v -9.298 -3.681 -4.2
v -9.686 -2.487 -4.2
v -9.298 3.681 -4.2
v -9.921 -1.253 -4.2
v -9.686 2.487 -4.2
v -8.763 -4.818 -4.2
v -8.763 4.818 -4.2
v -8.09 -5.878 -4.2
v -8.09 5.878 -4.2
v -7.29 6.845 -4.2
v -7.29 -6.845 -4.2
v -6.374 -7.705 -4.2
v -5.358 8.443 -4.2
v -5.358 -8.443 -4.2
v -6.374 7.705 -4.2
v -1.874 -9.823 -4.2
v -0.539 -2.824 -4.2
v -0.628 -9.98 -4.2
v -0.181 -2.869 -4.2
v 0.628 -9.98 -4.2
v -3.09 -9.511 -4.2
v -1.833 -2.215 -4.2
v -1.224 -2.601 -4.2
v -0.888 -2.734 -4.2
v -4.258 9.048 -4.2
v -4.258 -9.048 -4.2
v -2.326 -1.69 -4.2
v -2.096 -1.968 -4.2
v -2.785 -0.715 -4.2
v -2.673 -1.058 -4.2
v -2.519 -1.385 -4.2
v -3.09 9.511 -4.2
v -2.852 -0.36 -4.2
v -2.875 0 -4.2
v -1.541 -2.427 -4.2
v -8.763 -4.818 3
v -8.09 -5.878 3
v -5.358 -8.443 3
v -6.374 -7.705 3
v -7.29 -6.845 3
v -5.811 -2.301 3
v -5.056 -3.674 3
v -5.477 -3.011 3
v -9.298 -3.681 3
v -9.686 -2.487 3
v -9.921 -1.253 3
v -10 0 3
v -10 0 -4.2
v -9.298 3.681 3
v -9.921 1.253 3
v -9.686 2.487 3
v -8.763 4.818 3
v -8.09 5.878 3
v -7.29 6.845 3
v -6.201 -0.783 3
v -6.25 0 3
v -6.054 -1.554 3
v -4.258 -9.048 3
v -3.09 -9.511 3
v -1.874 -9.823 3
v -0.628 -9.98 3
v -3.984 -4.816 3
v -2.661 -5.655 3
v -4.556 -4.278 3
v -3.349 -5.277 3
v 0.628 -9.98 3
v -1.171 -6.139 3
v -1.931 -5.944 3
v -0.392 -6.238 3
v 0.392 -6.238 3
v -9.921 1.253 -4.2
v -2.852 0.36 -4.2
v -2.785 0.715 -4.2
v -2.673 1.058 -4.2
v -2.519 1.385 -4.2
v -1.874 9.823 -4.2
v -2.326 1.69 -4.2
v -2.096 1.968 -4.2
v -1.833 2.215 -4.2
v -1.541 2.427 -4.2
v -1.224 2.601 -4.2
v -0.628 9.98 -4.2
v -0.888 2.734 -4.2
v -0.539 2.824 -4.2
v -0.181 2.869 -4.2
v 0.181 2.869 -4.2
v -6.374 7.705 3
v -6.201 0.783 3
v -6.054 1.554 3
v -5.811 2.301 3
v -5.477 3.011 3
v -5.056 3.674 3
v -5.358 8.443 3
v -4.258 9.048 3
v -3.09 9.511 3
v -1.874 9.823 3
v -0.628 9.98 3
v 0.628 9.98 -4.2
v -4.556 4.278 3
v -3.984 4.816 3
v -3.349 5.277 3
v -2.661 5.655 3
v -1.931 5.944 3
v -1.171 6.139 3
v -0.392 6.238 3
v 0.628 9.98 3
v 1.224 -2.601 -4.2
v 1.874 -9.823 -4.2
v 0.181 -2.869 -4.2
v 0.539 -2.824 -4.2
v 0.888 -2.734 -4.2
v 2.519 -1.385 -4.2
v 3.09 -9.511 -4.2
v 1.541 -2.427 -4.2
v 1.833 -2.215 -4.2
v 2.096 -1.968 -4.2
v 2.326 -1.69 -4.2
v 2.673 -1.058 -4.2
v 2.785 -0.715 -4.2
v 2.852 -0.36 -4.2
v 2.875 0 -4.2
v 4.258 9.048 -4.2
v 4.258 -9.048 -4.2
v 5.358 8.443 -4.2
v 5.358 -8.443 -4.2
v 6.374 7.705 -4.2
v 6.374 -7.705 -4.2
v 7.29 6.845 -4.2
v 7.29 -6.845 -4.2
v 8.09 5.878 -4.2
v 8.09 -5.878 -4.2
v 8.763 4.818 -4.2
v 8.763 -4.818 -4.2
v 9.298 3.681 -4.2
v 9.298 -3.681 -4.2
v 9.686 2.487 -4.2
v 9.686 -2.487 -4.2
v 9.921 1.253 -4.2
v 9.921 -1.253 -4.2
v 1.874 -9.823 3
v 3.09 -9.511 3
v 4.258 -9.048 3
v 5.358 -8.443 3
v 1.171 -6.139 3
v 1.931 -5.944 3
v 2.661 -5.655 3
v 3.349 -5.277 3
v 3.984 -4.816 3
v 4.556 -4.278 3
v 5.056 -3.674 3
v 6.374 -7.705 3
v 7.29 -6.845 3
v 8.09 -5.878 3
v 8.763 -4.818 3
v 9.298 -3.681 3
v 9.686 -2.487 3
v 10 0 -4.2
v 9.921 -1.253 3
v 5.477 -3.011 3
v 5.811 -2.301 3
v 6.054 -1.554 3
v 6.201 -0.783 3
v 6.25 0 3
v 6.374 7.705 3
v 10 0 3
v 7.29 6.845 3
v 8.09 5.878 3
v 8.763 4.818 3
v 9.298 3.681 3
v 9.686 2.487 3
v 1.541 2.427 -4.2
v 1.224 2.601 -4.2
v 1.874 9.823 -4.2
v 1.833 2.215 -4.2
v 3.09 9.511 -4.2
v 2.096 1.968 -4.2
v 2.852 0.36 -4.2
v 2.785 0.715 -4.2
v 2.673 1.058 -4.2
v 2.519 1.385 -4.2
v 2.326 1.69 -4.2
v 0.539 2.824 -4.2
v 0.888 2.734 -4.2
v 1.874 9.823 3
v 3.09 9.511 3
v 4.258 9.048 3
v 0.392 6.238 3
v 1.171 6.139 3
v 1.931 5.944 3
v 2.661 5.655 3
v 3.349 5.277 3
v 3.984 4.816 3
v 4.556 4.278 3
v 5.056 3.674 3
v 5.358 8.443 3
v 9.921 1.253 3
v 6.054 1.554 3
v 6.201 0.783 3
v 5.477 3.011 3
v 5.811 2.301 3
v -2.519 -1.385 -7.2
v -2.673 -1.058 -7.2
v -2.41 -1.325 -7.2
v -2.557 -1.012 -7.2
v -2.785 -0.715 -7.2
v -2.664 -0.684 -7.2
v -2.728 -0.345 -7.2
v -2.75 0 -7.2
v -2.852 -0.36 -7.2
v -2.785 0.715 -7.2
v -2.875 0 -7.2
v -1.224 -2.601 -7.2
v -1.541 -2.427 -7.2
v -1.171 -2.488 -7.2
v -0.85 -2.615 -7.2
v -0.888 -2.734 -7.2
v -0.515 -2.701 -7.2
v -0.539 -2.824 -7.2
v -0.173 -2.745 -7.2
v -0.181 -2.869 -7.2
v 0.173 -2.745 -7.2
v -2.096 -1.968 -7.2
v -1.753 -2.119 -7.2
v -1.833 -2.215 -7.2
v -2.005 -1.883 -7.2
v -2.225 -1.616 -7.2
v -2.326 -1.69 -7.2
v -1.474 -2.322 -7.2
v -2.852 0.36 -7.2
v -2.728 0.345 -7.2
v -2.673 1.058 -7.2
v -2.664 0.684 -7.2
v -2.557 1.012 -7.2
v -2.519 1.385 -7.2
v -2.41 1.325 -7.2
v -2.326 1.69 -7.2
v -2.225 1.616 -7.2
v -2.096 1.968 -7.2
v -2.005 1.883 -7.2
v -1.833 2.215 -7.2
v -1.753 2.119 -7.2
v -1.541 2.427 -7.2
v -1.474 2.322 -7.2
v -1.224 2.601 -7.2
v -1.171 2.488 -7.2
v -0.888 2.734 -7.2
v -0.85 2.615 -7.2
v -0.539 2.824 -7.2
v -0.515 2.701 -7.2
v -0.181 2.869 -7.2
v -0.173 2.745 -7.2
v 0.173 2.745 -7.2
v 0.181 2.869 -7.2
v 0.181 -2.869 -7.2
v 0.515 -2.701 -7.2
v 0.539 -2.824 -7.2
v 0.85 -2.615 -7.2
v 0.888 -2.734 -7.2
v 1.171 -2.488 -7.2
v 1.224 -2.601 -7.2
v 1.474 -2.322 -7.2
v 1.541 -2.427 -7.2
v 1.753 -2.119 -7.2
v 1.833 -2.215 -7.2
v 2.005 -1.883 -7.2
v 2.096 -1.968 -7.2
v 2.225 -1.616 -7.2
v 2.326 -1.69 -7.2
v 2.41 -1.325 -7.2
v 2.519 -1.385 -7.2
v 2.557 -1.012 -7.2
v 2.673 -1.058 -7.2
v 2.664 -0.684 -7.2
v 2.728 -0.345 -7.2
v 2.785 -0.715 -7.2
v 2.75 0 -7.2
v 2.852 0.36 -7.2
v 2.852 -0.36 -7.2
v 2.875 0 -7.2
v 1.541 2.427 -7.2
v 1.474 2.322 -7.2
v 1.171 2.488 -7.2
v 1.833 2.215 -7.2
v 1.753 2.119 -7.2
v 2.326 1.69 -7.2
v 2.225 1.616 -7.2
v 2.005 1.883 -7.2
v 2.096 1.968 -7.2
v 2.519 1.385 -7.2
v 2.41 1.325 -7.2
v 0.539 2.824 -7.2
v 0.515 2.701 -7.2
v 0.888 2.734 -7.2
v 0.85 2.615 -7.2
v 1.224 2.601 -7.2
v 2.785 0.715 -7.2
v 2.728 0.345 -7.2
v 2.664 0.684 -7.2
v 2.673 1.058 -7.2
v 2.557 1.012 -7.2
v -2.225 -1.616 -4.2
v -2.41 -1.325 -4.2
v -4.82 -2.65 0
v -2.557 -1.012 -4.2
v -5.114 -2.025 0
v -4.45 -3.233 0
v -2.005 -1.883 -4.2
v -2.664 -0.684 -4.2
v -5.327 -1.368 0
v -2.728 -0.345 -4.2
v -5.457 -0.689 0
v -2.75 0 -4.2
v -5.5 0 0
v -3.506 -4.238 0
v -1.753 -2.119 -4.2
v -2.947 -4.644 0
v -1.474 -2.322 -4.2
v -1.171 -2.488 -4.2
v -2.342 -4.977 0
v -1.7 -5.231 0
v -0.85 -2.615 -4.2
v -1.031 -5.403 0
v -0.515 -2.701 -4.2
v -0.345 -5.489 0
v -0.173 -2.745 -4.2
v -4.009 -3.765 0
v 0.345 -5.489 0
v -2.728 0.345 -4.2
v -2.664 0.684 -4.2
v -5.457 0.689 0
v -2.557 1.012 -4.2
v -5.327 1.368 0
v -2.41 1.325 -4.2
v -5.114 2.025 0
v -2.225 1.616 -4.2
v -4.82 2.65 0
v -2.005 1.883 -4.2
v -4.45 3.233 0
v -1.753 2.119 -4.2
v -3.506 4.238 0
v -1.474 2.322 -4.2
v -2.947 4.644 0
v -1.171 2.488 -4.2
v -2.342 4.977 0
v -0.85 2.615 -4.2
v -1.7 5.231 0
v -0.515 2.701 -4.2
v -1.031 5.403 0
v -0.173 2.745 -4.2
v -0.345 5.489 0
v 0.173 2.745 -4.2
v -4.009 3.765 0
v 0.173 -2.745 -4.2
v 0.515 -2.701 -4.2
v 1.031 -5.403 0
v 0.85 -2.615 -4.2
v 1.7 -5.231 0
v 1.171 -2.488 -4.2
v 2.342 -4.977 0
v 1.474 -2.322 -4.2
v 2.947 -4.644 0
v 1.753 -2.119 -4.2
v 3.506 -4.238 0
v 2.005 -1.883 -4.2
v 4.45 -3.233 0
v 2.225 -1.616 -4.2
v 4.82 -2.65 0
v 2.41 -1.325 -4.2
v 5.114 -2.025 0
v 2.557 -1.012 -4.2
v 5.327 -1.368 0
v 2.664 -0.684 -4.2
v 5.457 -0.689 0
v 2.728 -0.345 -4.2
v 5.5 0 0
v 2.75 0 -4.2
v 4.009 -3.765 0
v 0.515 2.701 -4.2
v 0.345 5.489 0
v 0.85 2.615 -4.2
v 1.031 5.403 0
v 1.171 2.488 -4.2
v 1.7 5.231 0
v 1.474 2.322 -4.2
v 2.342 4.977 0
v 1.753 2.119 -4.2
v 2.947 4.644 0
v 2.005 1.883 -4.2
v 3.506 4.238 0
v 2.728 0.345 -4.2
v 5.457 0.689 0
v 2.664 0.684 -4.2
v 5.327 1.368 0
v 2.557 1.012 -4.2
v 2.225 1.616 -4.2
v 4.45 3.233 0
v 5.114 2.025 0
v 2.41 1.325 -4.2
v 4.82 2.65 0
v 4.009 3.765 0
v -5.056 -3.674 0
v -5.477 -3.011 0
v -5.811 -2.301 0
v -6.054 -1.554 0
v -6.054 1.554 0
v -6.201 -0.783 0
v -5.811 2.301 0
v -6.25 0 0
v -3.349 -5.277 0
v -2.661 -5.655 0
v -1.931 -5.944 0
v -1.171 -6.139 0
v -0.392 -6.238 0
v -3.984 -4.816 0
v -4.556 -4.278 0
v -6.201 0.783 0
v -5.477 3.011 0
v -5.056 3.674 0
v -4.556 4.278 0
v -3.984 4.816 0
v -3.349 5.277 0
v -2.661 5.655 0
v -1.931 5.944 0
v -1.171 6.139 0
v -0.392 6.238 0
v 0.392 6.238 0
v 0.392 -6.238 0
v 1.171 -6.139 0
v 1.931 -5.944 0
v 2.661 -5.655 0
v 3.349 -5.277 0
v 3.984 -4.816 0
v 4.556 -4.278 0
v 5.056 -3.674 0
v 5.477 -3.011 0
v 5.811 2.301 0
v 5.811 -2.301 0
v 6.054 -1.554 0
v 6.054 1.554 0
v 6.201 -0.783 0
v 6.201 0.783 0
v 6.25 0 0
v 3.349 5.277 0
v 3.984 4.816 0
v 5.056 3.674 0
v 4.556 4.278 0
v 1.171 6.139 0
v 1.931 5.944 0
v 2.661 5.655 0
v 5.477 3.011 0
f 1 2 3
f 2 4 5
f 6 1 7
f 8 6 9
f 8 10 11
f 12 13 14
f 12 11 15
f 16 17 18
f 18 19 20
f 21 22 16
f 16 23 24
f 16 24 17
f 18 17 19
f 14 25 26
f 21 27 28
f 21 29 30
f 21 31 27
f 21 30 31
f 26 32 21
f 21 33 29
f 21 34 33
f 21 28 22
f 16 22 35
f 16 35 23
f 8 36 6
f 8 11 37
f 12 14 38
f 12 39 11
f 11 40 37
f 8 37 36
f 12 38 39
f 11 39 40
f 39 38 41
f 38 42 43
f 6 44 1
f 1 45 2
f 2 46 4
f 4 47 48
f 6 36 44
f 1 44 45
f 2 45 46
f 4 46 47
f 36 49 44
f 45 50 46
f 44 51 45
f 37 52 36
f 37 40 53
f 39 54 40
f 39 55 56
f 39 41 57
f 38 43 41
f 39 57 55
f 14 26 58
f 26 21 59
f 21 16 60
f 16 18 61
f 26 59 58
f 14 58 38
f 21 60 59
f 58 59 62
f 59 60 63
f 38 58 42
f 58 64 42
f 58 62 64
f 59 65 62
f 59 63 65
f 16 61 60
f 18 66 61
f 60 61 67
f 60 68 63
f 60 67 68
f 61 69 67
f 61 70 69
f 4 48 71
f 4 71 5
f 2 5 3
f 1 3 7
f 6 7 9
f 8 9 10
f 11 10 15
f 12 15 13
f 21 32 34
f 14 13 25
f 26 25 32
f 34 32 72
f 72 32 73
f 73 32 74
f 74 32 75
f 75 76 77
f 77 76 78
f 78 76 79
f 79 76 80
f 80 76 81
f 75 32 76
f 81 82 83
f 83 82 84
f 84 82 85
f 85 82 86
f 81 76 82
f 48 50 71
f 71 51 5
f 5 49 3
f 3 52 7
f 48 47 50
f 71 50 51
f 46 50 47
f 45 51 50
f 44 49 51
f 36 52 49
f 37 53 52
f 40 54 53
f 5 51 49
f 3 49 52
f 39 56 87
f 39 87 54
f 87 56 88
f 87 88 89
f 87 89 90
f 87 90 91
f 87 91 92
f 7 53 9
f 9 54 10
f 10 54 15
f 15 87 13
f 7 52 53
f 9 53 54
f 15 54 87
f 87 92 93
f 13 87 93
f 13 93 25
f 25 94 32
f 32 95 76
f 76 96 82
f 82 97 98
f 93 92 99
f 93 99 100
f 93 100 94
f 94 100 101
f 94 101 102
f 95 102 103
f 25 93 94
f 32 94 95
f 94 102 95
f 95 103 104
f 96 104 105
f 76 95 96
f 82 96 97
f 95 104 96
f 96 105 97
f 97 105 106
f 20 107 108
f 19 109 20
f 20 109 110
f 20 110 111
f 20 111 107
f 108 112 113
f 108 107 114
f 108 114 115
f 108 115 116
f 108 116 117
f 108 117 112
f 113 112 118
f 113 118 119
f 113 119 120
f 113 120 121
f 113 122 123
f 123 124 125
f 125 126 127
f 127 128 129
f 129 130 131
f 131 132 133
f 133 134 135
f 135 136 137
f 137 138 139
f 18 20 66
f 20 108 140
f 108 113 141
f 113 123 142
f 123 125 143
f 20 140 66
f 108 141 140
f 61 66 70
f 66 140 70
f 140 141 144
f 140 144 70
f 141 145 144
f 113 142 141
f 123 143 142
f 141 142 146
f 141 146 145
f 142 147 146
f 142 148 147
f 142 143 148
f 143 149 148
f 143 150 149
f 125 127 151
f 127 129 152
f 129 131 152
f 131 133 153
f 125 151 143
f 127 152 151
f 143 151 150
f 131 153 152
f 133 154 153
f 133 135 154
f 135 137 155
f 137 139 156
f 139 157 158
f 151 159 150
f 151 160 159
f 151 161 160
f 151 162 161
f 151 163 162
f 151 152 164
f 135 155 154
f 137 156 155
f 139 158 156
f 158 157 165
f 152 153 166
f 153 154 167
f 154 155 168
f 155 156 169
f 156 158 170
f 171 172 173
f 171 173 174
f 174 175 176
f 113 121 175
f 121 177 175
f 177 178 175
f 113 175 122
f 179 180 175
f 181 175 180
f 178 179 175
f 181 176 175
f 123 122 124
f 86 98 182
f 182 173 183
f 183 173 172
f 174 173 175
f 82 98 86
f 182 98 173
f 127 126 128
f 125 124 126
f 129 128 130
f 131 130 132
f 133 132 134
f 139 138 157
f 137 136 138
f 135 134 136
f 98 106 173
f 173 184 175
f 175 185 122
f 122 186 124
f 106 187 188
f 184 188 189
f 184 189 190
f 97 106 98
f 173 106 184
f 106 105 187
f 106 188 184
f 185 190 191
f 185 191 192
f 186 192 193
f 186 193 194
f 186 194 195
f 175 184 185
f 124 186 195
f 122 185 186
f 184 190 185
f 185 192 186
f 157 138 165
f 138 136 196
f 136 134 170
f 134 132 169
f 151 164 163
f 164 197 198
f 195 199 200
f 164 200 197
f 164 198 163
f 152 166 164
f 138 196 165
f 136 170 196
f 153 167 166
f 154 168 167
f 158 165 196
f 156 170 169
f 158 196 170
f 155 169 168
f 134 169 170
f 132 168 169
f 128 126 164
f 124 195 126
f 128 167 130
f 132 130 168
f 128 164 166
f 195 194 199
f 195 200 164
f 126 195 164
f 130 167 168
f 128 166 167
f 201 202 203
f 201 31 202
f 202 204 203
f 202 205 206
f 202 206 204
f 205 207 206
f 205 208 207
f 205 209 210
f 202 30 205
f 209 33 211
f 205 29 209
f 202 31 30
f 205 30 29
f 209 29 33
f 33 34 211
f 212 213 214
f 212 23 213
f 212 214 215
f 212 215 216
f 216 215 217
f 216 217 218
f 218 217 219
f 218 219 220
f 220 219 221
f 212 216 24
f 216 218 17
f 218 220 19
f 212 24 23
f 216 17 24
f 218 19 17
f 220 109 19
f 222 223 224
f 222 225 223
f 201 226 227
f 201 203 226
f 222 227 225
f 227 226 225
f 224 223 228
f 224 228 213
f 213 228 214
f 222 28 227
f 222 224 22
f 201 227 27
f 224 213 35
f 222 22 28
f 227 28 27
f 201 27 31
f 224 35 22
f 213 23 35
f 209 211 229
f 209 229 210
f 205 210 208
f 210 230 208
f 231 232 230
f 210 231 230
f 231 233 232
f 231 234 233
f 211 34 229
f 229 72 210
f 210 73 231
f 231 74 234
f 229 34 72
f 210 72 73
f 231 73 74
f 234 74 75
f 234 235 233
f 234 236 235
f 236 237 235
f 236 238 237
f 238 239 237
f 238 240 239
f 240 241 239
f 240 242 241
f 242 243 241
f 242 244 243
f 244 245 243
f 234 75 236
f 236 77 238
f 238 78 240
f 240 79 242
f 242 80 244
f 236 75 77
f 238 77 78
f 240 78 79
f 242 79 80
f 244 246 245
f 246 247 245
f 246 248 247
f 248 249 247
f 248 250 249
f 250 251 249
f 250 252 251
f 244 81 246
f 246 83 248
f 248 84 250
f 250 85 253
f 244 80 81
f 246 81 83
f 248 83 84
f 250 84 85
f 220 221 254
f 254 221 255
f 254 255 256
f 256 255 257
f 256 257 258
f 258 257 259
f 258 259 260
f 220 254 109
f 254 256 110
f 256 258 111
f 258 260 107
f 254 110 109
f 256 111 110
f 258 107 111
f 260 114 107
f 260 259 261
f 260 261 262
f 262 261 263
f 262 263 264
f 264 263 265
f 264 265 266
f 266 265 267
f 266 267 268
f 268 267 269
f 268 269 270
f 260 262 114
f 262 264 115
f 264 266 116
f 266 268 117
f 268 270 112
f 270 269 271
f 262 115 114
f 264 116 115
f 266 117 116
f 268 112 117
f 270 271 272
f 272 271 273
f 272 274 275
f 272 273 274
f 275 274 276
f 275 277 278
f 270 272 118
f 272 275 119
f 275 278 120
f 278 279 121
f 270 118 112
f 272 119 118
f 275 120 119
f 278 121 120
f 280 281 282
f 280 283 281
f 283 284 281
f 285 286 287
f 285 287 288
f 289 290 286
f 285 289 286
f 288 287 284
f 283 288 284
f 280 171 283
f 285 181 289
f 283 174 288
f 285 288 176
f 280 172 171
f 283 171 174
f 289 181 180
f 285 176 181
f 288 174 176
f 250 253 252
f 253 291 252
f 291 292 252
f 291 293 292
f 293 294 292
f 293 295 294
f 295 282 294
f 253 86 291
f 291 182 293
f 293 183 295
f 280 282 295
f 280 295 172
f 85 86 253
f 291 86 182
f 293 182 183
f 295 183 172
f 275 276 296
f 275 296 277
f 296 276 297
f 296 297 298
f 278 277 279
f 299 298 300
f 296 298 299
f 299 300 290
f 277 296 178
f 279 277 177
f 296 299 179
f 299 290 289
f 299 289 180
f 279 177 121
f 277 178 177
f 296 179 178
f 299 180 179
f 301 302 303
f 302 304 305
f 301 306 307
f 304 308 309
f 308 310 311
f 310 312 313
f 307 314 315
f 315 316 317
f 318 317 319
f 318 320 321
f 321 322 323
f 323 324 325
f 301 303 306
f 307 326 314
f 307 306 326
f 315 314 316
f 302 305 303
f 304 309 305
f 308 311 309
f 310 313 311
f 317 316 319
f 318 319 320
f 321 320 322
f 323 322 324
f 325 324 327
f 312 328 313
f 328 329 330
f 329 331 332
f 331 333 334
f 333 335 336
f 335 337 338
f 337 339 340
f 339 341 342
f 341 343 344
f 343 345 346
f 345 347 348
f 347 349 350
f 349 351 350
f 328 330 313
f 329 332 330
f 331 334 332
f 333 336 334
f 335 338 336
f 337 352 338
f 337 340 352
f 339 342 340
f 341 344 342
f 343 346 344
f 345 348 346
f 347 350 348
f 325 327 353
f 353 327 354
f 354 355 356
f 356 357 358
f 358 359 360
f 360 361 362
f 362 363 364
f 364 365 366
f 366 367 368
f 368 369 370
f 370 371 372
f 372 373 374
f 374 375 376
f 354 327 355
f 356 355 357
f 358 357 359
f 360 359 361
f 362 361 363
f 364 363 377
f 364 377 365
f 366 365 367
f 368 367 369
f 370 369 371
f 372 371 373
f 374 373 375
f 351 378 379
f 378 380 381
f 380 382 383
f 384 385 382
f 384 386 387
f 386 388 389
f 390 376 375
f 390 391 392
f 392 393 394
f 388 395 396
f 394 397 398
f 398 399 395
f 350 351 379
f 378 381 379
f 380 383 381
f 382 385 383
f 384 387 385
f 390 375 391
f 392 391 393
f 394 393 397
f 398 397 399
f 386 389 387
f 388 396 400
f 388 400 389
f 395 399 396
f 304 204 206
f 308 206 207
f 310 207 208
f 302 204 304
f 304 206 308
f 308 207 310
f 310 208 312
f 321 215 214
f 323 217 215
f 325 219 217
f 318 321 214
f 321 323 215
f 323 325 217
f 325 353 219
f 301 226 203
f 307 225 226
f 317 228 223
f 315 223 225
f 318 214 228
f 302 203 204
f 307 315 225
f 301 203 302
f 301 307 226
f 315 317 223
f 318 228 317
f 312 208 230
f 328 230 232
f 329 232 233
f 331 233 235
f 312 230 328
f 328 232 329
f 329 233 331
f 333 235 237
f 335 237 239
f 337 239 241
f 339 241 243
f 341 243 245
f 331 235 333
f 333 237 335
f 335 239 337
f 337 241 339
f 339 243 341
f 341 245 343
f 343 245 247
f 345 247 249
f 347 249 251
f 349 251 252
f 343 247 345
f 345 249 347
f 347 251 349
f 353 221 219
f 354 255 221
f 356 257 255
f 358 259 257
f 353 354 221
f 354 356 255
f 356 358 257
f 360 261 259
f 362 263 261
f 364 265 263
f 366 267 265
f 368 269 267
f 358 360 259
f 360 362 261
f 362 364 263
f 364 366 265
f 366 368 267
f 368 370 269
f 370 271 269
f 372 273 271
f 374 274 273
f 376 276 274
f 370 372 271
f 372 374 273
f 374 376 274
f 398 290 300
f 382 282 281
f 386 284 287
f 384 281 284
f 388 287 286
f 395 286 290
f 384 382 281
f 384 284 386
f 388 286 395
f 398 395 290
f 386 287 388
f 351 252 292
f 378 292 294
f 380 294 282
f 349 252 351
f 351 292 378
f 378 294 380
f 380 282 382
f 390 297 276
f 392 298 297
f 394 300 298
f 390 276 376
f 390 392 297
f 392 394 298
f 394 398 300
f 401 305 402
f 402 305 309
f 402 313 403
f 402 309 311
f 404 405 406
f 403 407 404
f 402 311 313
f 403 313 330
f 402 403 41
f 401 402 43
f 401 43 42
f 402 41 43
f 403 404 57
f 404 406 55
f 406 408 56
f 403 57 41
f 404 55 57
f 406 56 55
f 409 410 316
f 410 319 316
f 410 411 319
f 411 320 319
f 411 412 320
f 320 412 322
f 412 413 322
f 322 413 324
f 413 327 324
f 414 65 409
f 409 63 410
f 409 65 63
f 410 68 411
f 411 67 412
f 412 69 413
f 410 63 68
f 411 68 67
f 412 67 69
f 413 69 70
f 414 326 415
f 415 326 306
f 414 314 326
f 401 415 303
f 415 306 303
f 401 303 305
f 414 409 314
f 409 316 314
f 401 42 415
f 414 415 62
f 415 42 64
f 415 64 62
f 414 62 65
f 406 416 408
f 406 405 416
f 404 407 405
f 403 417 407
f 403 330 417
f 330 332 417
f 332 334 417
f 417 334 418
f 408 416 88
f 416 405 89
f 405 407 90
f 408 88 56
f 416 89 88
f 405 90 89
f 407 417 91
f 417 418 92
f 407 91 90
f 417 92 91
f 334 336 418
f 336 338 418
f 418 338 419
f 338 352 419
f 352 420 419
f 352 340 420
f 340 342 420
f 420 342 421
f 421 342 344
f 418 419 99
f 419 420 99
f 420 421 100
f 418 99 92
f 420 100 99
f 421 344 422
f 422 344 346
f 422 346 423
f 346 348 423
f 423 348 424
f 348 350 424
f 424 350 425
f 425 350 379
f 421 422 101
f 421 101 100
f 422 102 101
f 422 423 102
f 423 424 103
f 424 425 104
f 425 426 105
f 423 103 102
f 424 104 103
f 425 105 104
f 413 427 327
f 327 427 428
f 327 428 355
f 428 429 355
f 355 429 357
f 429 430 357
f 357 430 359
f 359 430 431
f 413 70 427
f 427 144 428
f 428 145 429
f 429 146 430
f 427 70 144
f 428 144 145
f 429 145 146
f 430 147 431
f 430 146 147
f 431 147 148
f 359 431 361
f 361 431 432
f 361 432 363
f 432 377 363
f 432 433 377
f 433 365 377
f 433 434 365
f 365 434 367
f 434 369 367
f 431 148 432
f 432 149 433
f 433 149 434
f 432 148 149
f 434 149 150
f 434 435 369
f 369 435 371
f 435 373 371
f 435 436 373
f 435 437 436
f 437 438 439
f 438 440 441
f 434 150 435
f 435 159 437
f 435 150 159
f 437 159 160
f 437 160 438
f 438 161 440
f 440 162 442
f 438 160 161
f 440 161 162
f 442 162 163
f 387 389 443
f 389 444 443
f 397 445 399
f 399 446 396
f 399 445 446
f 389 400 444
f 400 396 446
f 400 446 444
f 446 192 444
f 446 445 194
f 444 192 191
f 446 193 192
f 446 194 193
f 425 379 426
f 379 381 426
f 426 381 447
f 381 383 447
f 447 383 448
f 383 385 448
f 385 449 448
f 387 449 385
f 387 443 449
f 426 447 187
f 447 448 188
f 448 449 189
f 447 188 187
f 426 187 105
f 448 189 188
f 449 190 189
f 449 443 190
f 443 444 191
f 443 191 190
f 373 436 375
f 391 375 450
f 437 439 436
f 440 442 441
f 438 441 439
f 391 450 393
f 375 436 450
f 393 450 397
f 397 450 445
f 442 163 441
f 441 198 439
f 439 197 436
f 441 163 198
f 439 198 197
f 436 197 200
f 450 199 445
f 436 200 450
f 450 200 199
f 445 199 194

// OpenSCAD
$fn = 50;

difference() {
	union() {
		translate(v = [0, 0, -4.2]) {
			cylinder(h = 7.2, r = 10.0);
		}
		#translate(v = [0, 0, -7.2]) {
			cylinder(h = 7.2, r = 2.875);
		}
	}
	union() {
		translate(v = [0, 0, 0]) {
			rotate(a = [0, 0, 0]) {
				difference() {
					union() {
						translate(v = [0, 0, -7.2]) {
							cylinder(h = 7.2, r = 2.25);
						}
						translate(v = [0, 0, -4.2]) {
							cylinder(h = 4.2, r1 = 2.75, r2 = 5.5);
						}
						translate(v = [0, 0, -7.2]) {
							cylinder(h = 7.2, r = 2.75);
						}
						translate(v = [0, 0, -7.2]) {
							cylinder(h = 7.2, r = 2.25);
						}
					}
					union();
				}
			}
		}
		#cylinder(h = 3, r = 6.25);
	}
}
